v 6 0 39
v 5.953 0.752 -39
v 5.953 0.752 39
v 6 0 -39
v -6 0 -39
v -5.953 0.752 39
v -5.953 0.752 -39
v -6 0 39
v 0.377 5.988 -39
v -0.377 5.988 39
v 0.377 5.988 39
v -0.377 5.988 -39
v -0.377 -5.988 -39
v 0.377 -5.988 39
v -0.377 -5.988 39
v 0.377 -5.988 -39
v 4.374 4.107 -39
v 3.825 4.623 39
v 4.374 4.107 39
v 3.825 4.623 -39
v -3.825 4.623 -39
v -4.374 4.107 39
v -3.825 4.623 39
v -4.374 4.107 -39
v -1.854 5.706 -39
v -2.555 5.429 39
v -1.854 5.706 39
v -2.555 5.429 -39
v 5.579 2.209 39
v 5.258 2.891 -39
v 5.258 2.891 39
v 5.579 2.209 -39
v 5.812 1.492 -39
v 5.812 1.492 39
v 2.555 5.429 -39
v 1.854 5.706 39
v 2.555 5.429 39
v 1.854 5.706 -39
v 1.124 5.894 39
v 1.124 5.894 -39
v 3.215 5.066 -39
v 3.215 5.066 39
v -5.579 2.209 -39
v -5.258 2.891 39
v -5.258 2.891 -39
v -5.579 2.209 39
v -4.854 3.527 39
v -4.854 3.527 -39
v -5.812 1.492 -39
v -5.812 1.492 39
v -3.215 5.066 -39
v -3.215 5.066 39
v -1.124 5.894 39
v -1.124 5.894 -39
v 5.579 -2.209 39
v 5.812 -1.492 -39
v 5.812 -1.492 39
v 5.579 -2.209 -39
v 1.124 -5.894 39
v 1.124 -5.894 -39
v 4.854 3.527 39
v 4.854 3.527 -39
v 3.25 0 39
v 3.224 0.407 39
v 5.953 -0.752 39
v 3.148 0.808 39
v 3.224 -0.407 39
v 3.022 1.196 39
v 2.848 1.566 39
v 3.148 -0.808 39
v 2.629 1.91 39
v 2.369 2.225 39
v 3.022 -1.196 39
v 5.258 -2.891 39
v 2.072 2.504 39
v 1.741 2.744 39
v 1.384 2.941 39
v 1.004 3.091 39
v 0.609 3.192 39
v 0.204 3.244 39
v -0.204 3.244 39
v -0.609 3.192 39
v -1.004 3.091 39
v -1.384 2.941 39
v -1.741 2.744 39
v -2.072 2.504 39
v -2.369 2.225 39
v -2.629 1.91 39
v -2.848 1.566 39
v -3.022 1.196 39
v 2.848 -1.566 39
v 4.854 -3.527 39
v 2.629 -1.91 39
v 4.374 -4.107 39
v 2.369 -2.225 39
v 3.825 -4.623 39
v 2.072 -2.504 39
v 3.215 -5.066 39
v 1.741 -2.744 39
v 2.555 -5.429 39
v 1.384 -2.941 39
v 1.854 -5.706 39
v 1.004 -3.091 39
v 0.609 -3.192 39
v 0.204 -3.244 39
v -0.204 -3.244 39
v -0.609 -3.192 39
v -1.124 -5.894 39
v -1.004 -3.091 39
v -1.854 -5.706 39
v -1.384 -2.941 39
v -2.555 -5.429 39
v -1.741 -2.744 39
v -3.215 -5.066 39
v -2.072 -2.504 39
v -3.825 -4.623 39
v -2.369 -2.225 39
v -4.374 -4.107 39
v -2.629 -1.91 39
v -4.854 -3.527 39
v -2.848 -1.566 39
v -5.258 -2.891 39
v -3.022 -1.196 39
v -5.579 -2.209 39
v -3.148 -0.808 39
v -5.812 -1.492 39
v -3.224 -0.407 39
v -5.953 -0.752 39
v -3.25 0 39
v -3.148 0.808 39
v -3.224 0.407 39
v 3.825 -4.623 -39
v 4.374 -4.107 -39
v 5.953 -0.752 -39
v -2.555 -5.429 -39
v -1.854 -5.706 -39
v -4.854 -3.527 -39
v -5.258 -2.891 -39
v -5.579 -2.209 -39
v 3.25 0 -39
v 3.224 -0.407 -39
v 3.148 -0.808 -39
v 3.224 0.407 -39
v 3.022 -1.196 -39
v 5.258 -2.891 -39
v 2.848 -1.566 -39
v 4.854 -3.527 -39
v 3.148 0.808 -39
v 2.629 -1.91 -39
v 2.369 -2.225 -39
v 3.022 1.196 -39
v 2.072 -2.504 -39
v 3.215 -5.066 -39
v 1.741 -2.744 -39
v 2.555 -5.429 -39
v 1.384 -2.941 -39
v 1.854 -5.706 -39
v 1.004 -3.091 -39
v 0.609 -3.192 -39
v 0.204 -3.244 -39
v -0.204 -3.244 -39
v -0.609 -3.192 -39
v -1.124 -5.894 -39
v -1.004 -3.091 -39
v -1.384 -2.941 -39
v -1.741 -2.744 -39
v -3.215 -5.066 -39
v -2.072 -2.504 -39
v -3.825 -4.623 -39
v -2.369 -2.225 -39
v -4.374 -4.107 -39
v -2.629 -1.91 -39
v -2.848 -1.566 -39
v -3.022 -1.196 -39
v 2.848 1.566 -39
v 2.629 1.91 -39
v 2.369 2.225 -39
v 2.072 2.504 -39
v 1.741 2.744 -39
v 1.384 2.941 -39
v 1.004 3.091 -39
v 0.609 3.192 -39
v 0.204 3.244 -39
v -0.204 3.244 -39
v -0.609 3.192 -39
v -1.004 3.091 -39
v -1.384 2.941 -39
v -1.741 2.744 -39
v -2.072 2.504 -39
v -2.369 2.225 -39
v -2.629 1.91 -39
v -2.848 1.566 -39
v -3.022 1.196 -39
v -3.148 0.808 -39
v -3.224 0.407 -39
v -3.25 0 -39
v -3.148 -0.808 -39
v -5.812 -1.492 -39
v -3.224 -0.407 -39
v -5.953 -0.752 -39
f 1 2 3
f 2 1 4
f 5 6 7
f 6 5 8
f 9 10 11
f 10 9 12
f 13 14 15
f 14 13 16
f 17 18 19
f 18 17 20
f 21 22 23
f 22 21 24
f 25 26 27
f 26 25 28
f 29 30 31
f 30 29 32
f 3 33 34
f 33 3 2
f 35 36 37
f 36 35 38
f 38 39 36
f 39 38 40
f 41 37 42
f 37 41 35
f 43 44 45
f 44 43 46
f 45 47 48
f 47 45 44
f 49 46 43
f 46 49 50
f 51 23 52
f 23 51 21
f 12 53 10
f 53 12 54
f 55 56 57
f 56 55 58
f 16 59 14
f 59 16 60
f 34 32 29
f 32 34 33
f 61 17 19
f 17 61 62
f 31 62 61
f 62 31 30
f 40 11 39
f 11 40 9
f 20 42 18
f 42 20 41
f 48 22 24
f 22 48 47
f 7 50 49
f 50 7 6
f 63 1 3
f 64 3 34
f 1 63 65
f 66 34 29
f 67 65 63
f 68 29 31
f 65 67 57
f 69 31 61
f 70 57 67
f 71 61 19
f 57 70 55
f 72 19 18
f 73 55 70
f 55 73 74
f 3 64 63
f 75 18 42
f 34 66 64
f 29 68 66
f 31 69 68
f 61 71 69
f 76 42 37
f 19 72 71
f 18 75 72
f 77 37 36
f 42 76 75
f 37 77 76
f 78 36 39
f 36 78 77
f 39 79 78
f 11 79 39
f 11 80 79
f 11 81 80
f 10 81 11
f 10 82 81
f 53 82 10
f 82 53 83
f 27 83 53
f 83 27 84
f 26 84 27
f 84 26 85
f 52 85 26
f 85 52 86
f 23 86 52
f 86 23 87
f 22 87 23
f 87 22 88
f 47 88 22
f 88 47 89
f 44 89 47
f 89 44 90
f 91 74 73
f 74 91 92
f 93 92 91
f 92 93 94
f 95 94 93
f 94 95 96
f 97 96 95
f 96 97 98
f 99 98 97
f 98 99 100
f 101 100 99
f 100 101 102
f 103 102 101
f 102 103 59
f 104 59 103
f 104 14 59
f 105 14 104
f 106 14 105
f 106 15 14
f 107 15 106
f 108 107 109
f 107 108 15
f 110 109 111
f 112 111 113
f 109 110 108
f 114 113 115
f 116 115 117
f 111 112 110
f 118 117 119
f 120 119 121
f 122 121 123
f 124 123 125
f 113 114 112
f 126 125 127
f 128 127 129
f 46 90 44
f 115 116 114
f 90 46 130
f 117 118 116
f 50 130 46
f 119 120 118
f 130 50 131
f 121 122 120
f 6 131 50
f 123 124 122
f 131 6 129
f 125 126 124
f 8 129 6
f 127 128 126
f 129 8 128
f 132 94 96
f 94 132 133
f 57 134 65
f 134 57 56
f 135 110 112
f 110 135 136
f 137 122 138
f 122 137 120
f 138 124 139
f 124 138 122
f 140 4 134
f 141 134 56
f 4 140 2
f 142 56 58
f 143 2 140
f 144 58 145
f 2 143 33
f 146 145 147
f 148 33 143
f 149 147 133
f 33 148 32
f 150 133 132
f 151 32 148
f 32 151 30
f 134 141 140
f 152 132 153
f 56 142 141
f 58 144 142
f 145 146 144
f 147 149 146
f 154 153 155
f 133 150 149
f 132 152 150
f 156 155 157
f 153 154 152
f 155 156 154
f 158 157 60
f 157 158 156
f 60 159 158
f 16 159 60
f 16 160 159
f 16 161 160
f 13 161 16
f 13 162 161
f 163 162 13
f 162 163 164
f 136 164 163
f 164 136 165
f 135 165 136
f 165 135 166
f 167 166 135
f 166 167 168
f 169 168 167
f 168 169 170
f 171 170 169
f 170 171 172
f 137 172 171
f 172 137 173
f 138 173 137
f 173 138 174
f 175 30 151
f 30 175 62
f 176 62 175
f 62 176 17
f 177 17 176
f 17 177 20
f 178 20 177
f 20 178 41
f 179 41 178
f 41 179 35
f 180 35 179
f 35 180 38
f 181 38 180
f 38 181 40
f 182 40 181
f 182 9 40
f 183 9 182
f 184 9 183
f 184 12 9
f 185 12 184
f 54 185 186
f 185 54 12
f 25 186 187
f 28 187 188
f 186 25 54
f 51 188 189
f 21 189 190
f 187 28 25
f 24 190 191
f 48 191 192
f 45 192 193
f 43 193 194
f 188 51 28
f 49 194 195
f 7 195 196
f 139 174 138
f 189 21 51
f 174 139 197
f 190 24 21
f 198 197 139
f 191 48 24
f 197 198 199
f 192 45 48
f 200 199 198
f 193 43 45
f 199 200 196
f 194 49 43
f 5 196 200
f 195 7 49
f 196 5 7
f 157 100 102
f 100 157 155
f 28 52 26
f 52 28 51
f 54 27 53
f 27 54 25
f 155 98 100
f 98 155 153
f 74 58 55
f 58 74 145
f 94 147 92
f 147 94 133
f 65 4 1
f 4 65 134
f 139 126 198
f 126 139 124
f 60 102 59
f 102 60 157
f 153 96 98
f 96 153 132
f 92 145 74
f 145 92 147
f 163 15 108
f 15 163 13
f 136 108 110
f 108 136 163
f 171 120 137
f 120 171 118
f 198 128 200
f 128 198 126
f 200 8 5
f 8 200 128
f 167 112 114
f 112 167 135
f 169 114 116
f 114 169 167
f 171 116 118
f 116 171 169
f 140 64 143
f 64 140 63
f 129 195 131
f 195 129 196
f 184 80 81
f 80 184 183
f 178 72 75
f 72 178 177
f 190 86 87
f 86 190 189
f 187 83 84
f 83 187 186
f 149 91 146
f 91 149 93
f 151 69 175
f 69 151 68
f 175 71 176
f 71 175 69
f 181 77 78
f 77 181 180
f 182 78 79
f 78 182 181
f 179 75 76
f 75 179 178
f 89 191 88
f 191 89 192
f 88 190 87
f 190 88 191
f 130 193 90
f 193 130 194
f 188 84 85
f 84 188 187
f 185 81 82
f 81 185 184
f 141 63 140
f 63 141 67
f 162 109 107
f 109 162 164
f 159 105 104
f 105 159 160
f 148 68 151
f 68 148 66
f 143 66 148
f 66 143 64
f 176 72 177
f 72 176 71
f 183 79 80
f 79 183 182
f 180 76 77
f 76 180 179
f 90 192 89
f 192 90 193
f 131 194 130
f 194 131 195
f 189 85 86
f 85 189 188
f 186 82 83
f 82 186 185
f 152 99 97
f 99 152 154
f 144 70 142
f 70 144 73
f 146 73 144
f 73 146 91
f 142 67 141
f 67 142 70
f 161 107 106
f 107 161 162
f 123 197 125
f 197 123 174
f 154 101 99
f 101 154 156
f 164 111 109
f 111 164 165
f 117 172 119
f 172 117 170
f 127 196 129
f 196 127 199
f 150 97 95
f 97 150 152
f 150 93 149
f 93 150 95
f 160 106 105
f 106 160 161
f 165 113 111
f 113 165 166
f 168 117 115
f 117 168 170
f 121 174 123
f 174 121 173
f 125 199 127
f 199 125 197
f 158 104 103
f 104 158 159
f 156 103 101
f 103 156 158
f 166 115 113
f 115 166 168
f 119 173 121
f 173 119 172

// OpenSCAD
$fn = 50;


difference() {
	union() {
		translate(v = [0, 0, -39.0000000000]) {
			cylinder(h = 78, r = 6.0000000000);
		}
	}
	union() {
		translate(v = [0, 0, -100.0000000000]) {
			cylinder(h = 200, r = 3.2500000000);
		}
	}
}
